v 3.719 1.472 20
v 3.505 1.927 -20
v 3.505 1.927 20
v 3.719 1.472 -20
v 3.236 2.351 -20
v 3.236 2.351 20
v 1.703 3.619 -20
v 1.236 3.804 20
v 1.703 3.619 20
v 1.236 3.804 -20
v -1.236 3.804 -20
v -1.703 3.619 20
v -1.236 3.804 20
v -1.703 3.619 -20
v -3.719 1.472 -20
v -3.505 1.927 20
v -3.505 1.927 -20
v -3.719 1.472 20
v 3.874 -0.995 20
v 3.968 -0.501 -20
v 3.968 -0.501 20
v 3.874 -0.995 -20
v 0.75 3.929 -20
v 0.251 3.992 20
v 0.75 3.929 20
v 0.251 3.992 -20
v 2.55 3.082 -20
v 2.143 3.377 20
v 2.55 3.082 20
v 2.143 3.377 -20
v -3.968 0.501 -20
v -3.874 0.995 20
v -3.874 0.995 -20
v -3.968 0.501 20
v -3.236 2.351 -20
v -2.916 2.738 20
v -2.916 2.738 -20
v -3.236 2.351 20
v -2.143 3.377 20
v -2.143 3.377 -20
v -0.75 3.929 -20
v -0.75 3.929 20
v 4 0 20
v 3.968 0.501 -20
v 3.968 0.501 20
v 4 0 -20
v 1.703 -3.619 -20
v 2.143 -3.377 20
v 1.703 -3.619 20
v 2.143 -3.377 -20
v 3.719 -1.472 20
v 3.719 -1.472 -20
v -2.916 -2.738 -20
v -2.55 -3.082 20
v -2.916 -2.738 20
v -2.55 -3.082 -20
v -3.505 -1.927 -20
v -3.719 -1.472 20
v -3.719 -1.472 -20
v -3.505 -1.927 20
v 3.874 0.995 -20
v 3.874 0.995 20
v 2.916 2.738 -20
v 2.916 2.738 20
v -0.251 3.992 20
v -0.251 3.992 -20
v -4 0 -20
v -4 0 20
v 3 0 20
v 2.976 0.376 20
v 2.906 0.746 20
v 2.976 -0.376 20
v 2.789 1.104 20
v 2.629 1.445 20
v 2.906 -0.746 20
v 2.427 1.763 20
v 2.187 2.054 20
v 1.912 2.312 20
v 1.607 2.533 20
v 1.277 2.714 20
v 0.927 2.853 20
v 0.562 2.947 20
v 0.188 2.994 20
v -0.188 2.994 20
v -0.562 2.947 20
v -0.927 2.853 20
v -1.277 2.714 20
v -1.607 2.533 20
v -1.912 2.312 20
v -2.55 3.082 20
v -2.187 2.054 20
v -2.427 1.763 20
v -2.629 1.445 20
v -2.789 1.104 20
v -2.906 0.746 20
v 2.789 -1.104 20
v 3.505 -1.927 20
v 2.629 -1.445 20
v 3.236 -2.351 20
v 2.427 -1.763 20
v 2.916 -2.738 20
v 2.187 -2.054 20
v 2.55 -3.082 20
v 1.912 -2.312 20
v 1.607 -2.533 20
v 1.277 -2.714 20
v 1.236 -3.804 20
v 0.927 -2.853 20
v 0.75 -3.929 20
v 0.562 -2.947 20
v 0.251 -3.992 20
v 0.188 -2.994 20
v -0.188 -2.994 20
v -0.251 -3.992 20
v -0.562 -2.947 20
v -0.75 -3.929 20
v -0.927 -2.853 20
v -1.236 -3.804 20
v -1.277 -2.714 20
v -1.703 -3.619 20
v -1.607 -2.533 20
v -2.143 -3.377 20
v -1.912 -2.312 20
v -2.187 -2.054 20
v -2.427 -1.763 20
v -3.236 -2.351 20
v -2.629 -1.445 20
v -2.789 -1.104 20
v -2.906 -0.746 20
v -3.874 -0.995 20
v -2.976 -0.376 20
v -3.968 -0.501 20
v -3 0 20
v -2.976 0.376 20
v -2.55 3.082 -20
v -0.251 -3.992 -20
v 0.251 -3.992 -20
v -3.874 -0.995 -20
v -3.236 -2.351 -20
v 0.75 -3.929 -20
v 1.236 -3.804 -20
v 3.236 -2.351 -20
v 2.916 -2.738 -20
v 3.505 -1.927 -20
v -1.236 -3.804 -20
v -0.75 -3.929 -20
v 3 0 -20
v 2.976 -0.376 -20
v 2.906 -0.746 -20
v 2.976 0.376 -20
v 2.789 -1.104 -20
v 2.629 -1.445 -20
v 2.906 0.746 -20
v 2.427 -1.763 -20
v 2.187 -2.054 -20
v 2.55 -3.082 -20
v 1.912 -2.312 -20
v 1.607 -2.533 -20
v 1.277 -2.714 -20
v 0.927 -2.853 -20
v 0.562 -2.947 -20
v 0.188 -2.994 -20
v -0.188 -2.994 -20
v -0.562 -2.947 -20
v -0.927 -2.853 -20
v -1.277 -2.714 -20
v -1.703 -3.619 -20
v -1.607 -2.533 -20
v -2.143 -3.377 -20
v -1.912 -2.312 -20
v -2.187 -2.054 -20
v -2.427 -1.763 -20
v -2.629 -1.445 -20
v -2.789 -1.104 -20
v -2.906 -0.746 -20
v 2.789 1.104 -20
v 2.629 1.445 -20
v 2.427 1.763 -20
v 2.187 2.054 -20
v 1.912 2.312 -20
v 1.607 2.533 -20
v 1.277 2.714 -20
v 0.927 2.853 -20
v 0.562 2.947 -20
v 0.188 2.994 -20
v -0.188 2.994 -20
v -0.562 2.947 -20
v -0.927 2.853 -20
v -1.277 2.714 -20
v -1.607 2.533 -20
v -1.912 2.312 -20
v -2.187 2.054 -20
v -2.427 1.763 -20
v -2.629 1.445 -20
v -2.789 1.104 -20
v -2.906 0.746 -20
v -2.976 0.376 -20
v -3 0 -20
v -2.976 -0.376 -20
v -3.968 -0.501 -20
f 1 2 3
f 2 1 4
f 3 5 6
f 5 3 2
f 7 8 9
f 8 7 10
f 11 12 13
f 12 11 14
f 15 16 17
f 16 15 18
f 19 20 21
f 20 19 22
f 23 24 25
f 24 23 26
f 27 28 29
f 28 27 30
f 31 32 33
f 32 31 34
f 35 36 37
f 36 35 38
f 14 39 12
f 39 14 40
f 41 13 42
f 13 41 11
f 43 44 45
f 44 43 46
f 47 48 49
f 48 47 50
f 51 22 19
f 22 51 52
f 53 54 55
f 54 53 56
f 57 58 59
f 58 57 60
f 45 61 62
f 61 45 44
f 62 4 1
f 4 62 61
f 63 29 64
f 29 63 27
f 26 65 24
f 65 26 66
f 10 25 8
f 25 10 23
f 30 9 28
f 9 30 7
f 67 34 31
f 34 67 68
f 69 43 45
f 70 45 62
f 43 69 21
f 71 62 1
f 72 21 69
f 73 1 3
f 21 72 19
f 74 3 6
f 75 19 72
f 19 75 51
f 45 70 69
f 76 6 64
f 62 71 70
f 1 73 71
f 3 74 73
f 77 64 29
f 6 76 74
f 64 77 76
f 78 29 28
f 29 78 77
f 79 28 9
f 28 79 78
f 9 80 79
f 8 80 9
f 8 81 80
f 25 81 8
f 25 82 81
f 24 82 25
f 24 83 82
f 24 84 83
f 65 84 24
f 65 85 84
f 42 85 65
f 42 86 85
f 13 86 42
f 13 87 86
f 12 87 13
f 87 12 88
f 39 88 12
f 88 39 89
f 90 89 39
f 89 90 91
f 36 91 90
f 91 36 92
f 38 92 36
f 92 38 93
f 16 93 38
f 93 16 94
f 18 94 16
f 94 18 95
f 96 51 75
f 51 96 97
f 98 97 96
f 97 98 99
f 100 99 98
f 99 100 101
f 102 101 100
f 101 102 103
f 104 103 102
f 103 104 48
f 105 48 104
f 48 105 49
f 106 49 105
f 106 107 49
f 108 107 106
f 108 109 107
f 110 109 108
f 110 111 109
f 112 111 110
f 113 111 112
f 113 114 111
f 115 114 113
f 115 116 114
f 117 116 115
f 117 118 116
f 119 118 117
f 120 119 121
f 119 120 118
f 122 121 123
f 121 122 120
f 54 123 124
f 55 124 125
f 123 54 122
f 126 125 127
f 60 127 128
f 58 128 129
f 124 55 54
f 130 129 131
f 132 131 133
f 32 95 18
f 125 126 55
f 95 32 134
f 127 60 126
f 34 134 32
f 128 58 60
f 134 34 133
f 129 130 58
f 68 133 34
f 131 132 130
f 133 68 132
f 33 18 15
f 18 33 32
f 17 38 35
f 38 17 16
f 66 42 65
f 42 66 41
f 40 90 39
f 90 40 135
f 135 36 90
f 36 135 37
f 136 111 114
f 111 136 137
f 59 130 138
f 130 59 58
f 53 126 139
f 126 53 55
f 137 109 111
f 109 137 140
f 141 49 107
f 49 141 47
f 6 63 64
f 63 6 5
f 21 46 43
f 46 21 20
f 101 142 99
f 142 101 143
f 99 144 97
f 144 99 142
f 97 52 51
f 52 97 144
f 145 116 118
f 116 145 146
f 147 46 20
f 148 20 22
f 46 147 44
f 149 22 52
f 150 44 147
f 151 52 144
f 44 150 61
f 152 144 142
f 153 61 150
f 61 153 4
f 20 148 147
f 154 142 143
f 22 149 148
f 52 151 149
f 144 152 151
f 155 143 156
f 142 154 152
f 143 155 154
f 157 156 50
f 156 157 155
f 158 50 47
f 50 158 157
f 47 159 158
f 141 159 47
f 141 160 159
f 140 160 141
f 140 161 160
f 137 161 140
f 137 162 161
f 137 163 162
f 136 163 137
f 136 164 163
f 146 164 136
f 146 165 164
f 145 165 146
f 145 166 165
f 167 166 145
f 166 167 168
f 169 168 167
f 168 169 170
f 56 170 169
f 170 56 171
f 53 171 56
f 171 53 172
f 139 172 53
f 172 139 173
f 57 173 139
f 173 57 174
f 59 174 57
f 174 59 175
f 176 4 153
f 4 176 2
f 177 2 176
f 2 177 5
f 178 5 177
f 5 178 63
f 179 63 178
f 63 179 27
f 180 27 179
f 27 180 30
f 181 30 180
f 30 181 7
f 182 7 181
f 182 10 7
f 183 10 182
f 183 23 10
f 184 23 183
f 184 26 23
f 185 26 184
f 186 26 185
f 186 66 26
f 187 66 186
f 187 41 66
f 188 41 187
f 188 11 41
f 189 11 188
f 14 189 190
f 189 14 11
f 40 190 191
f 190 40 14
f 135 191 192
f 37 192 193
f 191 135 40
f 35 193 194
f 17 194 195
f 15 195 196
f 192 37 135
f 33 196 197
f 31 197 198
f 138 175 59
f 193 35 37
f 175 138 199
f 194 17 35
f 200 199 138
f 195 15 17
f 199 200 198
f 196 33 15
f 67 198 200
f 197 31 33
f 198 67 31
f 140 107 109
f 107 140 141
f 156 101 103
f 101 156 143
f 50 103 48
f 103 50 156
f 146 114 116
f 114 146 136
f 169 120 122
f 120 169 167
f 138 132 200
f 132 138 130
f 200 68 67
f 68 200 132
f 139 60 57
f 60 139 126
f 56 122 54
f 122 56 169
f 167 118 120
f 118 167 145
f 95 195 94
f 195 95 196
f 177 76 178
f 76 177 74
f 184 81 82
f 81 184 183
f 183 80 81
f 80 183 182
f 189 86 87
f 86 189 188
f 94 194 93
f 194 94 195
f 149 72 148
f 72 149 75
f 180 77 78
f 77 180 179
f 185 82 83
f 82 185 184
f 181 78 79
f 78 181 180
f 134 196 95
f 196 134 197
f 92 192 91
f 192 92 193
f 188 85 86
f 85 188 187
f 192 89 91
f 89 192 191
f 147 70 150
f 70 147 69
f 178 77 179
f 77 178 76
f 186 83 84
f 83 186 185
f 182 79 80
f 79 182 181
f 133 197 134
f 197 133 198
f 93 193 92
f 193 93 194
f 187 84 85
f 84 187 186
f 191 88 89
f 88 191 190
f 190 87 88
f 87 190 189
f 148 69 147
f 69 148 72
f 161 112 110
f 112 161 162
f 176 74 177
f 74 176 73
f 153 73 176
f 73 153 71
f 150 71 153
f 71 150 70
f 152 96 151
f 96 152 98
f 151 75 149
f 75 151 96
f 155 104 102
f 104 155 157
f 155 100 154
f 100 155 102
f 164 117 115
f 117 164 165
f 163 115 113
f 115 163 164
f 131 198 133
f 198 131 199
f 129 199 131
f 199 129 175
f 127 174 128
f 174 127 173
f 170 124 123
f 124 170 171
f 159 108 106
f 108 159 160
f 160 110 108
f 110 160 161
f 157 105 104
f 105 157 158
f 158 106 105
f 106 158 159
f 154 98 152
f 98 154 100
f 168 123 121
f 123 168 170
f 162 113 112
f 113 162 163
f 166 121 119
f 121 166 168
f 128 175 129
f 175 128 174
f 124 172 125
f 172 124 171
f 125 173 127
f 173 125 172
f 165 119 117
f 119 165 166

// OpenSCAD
$fn = 50;


difference() {
	union() {
		translate(v = [0, 0, -20.0000000000]) {
			cylinder(h = 40, r = 4.0000000000);
		}
	}
	union() {
		translate(v = [0, 0, -100.0000000000]) {
			cylinder(h = 200, r = 3);
		}
	}
}
